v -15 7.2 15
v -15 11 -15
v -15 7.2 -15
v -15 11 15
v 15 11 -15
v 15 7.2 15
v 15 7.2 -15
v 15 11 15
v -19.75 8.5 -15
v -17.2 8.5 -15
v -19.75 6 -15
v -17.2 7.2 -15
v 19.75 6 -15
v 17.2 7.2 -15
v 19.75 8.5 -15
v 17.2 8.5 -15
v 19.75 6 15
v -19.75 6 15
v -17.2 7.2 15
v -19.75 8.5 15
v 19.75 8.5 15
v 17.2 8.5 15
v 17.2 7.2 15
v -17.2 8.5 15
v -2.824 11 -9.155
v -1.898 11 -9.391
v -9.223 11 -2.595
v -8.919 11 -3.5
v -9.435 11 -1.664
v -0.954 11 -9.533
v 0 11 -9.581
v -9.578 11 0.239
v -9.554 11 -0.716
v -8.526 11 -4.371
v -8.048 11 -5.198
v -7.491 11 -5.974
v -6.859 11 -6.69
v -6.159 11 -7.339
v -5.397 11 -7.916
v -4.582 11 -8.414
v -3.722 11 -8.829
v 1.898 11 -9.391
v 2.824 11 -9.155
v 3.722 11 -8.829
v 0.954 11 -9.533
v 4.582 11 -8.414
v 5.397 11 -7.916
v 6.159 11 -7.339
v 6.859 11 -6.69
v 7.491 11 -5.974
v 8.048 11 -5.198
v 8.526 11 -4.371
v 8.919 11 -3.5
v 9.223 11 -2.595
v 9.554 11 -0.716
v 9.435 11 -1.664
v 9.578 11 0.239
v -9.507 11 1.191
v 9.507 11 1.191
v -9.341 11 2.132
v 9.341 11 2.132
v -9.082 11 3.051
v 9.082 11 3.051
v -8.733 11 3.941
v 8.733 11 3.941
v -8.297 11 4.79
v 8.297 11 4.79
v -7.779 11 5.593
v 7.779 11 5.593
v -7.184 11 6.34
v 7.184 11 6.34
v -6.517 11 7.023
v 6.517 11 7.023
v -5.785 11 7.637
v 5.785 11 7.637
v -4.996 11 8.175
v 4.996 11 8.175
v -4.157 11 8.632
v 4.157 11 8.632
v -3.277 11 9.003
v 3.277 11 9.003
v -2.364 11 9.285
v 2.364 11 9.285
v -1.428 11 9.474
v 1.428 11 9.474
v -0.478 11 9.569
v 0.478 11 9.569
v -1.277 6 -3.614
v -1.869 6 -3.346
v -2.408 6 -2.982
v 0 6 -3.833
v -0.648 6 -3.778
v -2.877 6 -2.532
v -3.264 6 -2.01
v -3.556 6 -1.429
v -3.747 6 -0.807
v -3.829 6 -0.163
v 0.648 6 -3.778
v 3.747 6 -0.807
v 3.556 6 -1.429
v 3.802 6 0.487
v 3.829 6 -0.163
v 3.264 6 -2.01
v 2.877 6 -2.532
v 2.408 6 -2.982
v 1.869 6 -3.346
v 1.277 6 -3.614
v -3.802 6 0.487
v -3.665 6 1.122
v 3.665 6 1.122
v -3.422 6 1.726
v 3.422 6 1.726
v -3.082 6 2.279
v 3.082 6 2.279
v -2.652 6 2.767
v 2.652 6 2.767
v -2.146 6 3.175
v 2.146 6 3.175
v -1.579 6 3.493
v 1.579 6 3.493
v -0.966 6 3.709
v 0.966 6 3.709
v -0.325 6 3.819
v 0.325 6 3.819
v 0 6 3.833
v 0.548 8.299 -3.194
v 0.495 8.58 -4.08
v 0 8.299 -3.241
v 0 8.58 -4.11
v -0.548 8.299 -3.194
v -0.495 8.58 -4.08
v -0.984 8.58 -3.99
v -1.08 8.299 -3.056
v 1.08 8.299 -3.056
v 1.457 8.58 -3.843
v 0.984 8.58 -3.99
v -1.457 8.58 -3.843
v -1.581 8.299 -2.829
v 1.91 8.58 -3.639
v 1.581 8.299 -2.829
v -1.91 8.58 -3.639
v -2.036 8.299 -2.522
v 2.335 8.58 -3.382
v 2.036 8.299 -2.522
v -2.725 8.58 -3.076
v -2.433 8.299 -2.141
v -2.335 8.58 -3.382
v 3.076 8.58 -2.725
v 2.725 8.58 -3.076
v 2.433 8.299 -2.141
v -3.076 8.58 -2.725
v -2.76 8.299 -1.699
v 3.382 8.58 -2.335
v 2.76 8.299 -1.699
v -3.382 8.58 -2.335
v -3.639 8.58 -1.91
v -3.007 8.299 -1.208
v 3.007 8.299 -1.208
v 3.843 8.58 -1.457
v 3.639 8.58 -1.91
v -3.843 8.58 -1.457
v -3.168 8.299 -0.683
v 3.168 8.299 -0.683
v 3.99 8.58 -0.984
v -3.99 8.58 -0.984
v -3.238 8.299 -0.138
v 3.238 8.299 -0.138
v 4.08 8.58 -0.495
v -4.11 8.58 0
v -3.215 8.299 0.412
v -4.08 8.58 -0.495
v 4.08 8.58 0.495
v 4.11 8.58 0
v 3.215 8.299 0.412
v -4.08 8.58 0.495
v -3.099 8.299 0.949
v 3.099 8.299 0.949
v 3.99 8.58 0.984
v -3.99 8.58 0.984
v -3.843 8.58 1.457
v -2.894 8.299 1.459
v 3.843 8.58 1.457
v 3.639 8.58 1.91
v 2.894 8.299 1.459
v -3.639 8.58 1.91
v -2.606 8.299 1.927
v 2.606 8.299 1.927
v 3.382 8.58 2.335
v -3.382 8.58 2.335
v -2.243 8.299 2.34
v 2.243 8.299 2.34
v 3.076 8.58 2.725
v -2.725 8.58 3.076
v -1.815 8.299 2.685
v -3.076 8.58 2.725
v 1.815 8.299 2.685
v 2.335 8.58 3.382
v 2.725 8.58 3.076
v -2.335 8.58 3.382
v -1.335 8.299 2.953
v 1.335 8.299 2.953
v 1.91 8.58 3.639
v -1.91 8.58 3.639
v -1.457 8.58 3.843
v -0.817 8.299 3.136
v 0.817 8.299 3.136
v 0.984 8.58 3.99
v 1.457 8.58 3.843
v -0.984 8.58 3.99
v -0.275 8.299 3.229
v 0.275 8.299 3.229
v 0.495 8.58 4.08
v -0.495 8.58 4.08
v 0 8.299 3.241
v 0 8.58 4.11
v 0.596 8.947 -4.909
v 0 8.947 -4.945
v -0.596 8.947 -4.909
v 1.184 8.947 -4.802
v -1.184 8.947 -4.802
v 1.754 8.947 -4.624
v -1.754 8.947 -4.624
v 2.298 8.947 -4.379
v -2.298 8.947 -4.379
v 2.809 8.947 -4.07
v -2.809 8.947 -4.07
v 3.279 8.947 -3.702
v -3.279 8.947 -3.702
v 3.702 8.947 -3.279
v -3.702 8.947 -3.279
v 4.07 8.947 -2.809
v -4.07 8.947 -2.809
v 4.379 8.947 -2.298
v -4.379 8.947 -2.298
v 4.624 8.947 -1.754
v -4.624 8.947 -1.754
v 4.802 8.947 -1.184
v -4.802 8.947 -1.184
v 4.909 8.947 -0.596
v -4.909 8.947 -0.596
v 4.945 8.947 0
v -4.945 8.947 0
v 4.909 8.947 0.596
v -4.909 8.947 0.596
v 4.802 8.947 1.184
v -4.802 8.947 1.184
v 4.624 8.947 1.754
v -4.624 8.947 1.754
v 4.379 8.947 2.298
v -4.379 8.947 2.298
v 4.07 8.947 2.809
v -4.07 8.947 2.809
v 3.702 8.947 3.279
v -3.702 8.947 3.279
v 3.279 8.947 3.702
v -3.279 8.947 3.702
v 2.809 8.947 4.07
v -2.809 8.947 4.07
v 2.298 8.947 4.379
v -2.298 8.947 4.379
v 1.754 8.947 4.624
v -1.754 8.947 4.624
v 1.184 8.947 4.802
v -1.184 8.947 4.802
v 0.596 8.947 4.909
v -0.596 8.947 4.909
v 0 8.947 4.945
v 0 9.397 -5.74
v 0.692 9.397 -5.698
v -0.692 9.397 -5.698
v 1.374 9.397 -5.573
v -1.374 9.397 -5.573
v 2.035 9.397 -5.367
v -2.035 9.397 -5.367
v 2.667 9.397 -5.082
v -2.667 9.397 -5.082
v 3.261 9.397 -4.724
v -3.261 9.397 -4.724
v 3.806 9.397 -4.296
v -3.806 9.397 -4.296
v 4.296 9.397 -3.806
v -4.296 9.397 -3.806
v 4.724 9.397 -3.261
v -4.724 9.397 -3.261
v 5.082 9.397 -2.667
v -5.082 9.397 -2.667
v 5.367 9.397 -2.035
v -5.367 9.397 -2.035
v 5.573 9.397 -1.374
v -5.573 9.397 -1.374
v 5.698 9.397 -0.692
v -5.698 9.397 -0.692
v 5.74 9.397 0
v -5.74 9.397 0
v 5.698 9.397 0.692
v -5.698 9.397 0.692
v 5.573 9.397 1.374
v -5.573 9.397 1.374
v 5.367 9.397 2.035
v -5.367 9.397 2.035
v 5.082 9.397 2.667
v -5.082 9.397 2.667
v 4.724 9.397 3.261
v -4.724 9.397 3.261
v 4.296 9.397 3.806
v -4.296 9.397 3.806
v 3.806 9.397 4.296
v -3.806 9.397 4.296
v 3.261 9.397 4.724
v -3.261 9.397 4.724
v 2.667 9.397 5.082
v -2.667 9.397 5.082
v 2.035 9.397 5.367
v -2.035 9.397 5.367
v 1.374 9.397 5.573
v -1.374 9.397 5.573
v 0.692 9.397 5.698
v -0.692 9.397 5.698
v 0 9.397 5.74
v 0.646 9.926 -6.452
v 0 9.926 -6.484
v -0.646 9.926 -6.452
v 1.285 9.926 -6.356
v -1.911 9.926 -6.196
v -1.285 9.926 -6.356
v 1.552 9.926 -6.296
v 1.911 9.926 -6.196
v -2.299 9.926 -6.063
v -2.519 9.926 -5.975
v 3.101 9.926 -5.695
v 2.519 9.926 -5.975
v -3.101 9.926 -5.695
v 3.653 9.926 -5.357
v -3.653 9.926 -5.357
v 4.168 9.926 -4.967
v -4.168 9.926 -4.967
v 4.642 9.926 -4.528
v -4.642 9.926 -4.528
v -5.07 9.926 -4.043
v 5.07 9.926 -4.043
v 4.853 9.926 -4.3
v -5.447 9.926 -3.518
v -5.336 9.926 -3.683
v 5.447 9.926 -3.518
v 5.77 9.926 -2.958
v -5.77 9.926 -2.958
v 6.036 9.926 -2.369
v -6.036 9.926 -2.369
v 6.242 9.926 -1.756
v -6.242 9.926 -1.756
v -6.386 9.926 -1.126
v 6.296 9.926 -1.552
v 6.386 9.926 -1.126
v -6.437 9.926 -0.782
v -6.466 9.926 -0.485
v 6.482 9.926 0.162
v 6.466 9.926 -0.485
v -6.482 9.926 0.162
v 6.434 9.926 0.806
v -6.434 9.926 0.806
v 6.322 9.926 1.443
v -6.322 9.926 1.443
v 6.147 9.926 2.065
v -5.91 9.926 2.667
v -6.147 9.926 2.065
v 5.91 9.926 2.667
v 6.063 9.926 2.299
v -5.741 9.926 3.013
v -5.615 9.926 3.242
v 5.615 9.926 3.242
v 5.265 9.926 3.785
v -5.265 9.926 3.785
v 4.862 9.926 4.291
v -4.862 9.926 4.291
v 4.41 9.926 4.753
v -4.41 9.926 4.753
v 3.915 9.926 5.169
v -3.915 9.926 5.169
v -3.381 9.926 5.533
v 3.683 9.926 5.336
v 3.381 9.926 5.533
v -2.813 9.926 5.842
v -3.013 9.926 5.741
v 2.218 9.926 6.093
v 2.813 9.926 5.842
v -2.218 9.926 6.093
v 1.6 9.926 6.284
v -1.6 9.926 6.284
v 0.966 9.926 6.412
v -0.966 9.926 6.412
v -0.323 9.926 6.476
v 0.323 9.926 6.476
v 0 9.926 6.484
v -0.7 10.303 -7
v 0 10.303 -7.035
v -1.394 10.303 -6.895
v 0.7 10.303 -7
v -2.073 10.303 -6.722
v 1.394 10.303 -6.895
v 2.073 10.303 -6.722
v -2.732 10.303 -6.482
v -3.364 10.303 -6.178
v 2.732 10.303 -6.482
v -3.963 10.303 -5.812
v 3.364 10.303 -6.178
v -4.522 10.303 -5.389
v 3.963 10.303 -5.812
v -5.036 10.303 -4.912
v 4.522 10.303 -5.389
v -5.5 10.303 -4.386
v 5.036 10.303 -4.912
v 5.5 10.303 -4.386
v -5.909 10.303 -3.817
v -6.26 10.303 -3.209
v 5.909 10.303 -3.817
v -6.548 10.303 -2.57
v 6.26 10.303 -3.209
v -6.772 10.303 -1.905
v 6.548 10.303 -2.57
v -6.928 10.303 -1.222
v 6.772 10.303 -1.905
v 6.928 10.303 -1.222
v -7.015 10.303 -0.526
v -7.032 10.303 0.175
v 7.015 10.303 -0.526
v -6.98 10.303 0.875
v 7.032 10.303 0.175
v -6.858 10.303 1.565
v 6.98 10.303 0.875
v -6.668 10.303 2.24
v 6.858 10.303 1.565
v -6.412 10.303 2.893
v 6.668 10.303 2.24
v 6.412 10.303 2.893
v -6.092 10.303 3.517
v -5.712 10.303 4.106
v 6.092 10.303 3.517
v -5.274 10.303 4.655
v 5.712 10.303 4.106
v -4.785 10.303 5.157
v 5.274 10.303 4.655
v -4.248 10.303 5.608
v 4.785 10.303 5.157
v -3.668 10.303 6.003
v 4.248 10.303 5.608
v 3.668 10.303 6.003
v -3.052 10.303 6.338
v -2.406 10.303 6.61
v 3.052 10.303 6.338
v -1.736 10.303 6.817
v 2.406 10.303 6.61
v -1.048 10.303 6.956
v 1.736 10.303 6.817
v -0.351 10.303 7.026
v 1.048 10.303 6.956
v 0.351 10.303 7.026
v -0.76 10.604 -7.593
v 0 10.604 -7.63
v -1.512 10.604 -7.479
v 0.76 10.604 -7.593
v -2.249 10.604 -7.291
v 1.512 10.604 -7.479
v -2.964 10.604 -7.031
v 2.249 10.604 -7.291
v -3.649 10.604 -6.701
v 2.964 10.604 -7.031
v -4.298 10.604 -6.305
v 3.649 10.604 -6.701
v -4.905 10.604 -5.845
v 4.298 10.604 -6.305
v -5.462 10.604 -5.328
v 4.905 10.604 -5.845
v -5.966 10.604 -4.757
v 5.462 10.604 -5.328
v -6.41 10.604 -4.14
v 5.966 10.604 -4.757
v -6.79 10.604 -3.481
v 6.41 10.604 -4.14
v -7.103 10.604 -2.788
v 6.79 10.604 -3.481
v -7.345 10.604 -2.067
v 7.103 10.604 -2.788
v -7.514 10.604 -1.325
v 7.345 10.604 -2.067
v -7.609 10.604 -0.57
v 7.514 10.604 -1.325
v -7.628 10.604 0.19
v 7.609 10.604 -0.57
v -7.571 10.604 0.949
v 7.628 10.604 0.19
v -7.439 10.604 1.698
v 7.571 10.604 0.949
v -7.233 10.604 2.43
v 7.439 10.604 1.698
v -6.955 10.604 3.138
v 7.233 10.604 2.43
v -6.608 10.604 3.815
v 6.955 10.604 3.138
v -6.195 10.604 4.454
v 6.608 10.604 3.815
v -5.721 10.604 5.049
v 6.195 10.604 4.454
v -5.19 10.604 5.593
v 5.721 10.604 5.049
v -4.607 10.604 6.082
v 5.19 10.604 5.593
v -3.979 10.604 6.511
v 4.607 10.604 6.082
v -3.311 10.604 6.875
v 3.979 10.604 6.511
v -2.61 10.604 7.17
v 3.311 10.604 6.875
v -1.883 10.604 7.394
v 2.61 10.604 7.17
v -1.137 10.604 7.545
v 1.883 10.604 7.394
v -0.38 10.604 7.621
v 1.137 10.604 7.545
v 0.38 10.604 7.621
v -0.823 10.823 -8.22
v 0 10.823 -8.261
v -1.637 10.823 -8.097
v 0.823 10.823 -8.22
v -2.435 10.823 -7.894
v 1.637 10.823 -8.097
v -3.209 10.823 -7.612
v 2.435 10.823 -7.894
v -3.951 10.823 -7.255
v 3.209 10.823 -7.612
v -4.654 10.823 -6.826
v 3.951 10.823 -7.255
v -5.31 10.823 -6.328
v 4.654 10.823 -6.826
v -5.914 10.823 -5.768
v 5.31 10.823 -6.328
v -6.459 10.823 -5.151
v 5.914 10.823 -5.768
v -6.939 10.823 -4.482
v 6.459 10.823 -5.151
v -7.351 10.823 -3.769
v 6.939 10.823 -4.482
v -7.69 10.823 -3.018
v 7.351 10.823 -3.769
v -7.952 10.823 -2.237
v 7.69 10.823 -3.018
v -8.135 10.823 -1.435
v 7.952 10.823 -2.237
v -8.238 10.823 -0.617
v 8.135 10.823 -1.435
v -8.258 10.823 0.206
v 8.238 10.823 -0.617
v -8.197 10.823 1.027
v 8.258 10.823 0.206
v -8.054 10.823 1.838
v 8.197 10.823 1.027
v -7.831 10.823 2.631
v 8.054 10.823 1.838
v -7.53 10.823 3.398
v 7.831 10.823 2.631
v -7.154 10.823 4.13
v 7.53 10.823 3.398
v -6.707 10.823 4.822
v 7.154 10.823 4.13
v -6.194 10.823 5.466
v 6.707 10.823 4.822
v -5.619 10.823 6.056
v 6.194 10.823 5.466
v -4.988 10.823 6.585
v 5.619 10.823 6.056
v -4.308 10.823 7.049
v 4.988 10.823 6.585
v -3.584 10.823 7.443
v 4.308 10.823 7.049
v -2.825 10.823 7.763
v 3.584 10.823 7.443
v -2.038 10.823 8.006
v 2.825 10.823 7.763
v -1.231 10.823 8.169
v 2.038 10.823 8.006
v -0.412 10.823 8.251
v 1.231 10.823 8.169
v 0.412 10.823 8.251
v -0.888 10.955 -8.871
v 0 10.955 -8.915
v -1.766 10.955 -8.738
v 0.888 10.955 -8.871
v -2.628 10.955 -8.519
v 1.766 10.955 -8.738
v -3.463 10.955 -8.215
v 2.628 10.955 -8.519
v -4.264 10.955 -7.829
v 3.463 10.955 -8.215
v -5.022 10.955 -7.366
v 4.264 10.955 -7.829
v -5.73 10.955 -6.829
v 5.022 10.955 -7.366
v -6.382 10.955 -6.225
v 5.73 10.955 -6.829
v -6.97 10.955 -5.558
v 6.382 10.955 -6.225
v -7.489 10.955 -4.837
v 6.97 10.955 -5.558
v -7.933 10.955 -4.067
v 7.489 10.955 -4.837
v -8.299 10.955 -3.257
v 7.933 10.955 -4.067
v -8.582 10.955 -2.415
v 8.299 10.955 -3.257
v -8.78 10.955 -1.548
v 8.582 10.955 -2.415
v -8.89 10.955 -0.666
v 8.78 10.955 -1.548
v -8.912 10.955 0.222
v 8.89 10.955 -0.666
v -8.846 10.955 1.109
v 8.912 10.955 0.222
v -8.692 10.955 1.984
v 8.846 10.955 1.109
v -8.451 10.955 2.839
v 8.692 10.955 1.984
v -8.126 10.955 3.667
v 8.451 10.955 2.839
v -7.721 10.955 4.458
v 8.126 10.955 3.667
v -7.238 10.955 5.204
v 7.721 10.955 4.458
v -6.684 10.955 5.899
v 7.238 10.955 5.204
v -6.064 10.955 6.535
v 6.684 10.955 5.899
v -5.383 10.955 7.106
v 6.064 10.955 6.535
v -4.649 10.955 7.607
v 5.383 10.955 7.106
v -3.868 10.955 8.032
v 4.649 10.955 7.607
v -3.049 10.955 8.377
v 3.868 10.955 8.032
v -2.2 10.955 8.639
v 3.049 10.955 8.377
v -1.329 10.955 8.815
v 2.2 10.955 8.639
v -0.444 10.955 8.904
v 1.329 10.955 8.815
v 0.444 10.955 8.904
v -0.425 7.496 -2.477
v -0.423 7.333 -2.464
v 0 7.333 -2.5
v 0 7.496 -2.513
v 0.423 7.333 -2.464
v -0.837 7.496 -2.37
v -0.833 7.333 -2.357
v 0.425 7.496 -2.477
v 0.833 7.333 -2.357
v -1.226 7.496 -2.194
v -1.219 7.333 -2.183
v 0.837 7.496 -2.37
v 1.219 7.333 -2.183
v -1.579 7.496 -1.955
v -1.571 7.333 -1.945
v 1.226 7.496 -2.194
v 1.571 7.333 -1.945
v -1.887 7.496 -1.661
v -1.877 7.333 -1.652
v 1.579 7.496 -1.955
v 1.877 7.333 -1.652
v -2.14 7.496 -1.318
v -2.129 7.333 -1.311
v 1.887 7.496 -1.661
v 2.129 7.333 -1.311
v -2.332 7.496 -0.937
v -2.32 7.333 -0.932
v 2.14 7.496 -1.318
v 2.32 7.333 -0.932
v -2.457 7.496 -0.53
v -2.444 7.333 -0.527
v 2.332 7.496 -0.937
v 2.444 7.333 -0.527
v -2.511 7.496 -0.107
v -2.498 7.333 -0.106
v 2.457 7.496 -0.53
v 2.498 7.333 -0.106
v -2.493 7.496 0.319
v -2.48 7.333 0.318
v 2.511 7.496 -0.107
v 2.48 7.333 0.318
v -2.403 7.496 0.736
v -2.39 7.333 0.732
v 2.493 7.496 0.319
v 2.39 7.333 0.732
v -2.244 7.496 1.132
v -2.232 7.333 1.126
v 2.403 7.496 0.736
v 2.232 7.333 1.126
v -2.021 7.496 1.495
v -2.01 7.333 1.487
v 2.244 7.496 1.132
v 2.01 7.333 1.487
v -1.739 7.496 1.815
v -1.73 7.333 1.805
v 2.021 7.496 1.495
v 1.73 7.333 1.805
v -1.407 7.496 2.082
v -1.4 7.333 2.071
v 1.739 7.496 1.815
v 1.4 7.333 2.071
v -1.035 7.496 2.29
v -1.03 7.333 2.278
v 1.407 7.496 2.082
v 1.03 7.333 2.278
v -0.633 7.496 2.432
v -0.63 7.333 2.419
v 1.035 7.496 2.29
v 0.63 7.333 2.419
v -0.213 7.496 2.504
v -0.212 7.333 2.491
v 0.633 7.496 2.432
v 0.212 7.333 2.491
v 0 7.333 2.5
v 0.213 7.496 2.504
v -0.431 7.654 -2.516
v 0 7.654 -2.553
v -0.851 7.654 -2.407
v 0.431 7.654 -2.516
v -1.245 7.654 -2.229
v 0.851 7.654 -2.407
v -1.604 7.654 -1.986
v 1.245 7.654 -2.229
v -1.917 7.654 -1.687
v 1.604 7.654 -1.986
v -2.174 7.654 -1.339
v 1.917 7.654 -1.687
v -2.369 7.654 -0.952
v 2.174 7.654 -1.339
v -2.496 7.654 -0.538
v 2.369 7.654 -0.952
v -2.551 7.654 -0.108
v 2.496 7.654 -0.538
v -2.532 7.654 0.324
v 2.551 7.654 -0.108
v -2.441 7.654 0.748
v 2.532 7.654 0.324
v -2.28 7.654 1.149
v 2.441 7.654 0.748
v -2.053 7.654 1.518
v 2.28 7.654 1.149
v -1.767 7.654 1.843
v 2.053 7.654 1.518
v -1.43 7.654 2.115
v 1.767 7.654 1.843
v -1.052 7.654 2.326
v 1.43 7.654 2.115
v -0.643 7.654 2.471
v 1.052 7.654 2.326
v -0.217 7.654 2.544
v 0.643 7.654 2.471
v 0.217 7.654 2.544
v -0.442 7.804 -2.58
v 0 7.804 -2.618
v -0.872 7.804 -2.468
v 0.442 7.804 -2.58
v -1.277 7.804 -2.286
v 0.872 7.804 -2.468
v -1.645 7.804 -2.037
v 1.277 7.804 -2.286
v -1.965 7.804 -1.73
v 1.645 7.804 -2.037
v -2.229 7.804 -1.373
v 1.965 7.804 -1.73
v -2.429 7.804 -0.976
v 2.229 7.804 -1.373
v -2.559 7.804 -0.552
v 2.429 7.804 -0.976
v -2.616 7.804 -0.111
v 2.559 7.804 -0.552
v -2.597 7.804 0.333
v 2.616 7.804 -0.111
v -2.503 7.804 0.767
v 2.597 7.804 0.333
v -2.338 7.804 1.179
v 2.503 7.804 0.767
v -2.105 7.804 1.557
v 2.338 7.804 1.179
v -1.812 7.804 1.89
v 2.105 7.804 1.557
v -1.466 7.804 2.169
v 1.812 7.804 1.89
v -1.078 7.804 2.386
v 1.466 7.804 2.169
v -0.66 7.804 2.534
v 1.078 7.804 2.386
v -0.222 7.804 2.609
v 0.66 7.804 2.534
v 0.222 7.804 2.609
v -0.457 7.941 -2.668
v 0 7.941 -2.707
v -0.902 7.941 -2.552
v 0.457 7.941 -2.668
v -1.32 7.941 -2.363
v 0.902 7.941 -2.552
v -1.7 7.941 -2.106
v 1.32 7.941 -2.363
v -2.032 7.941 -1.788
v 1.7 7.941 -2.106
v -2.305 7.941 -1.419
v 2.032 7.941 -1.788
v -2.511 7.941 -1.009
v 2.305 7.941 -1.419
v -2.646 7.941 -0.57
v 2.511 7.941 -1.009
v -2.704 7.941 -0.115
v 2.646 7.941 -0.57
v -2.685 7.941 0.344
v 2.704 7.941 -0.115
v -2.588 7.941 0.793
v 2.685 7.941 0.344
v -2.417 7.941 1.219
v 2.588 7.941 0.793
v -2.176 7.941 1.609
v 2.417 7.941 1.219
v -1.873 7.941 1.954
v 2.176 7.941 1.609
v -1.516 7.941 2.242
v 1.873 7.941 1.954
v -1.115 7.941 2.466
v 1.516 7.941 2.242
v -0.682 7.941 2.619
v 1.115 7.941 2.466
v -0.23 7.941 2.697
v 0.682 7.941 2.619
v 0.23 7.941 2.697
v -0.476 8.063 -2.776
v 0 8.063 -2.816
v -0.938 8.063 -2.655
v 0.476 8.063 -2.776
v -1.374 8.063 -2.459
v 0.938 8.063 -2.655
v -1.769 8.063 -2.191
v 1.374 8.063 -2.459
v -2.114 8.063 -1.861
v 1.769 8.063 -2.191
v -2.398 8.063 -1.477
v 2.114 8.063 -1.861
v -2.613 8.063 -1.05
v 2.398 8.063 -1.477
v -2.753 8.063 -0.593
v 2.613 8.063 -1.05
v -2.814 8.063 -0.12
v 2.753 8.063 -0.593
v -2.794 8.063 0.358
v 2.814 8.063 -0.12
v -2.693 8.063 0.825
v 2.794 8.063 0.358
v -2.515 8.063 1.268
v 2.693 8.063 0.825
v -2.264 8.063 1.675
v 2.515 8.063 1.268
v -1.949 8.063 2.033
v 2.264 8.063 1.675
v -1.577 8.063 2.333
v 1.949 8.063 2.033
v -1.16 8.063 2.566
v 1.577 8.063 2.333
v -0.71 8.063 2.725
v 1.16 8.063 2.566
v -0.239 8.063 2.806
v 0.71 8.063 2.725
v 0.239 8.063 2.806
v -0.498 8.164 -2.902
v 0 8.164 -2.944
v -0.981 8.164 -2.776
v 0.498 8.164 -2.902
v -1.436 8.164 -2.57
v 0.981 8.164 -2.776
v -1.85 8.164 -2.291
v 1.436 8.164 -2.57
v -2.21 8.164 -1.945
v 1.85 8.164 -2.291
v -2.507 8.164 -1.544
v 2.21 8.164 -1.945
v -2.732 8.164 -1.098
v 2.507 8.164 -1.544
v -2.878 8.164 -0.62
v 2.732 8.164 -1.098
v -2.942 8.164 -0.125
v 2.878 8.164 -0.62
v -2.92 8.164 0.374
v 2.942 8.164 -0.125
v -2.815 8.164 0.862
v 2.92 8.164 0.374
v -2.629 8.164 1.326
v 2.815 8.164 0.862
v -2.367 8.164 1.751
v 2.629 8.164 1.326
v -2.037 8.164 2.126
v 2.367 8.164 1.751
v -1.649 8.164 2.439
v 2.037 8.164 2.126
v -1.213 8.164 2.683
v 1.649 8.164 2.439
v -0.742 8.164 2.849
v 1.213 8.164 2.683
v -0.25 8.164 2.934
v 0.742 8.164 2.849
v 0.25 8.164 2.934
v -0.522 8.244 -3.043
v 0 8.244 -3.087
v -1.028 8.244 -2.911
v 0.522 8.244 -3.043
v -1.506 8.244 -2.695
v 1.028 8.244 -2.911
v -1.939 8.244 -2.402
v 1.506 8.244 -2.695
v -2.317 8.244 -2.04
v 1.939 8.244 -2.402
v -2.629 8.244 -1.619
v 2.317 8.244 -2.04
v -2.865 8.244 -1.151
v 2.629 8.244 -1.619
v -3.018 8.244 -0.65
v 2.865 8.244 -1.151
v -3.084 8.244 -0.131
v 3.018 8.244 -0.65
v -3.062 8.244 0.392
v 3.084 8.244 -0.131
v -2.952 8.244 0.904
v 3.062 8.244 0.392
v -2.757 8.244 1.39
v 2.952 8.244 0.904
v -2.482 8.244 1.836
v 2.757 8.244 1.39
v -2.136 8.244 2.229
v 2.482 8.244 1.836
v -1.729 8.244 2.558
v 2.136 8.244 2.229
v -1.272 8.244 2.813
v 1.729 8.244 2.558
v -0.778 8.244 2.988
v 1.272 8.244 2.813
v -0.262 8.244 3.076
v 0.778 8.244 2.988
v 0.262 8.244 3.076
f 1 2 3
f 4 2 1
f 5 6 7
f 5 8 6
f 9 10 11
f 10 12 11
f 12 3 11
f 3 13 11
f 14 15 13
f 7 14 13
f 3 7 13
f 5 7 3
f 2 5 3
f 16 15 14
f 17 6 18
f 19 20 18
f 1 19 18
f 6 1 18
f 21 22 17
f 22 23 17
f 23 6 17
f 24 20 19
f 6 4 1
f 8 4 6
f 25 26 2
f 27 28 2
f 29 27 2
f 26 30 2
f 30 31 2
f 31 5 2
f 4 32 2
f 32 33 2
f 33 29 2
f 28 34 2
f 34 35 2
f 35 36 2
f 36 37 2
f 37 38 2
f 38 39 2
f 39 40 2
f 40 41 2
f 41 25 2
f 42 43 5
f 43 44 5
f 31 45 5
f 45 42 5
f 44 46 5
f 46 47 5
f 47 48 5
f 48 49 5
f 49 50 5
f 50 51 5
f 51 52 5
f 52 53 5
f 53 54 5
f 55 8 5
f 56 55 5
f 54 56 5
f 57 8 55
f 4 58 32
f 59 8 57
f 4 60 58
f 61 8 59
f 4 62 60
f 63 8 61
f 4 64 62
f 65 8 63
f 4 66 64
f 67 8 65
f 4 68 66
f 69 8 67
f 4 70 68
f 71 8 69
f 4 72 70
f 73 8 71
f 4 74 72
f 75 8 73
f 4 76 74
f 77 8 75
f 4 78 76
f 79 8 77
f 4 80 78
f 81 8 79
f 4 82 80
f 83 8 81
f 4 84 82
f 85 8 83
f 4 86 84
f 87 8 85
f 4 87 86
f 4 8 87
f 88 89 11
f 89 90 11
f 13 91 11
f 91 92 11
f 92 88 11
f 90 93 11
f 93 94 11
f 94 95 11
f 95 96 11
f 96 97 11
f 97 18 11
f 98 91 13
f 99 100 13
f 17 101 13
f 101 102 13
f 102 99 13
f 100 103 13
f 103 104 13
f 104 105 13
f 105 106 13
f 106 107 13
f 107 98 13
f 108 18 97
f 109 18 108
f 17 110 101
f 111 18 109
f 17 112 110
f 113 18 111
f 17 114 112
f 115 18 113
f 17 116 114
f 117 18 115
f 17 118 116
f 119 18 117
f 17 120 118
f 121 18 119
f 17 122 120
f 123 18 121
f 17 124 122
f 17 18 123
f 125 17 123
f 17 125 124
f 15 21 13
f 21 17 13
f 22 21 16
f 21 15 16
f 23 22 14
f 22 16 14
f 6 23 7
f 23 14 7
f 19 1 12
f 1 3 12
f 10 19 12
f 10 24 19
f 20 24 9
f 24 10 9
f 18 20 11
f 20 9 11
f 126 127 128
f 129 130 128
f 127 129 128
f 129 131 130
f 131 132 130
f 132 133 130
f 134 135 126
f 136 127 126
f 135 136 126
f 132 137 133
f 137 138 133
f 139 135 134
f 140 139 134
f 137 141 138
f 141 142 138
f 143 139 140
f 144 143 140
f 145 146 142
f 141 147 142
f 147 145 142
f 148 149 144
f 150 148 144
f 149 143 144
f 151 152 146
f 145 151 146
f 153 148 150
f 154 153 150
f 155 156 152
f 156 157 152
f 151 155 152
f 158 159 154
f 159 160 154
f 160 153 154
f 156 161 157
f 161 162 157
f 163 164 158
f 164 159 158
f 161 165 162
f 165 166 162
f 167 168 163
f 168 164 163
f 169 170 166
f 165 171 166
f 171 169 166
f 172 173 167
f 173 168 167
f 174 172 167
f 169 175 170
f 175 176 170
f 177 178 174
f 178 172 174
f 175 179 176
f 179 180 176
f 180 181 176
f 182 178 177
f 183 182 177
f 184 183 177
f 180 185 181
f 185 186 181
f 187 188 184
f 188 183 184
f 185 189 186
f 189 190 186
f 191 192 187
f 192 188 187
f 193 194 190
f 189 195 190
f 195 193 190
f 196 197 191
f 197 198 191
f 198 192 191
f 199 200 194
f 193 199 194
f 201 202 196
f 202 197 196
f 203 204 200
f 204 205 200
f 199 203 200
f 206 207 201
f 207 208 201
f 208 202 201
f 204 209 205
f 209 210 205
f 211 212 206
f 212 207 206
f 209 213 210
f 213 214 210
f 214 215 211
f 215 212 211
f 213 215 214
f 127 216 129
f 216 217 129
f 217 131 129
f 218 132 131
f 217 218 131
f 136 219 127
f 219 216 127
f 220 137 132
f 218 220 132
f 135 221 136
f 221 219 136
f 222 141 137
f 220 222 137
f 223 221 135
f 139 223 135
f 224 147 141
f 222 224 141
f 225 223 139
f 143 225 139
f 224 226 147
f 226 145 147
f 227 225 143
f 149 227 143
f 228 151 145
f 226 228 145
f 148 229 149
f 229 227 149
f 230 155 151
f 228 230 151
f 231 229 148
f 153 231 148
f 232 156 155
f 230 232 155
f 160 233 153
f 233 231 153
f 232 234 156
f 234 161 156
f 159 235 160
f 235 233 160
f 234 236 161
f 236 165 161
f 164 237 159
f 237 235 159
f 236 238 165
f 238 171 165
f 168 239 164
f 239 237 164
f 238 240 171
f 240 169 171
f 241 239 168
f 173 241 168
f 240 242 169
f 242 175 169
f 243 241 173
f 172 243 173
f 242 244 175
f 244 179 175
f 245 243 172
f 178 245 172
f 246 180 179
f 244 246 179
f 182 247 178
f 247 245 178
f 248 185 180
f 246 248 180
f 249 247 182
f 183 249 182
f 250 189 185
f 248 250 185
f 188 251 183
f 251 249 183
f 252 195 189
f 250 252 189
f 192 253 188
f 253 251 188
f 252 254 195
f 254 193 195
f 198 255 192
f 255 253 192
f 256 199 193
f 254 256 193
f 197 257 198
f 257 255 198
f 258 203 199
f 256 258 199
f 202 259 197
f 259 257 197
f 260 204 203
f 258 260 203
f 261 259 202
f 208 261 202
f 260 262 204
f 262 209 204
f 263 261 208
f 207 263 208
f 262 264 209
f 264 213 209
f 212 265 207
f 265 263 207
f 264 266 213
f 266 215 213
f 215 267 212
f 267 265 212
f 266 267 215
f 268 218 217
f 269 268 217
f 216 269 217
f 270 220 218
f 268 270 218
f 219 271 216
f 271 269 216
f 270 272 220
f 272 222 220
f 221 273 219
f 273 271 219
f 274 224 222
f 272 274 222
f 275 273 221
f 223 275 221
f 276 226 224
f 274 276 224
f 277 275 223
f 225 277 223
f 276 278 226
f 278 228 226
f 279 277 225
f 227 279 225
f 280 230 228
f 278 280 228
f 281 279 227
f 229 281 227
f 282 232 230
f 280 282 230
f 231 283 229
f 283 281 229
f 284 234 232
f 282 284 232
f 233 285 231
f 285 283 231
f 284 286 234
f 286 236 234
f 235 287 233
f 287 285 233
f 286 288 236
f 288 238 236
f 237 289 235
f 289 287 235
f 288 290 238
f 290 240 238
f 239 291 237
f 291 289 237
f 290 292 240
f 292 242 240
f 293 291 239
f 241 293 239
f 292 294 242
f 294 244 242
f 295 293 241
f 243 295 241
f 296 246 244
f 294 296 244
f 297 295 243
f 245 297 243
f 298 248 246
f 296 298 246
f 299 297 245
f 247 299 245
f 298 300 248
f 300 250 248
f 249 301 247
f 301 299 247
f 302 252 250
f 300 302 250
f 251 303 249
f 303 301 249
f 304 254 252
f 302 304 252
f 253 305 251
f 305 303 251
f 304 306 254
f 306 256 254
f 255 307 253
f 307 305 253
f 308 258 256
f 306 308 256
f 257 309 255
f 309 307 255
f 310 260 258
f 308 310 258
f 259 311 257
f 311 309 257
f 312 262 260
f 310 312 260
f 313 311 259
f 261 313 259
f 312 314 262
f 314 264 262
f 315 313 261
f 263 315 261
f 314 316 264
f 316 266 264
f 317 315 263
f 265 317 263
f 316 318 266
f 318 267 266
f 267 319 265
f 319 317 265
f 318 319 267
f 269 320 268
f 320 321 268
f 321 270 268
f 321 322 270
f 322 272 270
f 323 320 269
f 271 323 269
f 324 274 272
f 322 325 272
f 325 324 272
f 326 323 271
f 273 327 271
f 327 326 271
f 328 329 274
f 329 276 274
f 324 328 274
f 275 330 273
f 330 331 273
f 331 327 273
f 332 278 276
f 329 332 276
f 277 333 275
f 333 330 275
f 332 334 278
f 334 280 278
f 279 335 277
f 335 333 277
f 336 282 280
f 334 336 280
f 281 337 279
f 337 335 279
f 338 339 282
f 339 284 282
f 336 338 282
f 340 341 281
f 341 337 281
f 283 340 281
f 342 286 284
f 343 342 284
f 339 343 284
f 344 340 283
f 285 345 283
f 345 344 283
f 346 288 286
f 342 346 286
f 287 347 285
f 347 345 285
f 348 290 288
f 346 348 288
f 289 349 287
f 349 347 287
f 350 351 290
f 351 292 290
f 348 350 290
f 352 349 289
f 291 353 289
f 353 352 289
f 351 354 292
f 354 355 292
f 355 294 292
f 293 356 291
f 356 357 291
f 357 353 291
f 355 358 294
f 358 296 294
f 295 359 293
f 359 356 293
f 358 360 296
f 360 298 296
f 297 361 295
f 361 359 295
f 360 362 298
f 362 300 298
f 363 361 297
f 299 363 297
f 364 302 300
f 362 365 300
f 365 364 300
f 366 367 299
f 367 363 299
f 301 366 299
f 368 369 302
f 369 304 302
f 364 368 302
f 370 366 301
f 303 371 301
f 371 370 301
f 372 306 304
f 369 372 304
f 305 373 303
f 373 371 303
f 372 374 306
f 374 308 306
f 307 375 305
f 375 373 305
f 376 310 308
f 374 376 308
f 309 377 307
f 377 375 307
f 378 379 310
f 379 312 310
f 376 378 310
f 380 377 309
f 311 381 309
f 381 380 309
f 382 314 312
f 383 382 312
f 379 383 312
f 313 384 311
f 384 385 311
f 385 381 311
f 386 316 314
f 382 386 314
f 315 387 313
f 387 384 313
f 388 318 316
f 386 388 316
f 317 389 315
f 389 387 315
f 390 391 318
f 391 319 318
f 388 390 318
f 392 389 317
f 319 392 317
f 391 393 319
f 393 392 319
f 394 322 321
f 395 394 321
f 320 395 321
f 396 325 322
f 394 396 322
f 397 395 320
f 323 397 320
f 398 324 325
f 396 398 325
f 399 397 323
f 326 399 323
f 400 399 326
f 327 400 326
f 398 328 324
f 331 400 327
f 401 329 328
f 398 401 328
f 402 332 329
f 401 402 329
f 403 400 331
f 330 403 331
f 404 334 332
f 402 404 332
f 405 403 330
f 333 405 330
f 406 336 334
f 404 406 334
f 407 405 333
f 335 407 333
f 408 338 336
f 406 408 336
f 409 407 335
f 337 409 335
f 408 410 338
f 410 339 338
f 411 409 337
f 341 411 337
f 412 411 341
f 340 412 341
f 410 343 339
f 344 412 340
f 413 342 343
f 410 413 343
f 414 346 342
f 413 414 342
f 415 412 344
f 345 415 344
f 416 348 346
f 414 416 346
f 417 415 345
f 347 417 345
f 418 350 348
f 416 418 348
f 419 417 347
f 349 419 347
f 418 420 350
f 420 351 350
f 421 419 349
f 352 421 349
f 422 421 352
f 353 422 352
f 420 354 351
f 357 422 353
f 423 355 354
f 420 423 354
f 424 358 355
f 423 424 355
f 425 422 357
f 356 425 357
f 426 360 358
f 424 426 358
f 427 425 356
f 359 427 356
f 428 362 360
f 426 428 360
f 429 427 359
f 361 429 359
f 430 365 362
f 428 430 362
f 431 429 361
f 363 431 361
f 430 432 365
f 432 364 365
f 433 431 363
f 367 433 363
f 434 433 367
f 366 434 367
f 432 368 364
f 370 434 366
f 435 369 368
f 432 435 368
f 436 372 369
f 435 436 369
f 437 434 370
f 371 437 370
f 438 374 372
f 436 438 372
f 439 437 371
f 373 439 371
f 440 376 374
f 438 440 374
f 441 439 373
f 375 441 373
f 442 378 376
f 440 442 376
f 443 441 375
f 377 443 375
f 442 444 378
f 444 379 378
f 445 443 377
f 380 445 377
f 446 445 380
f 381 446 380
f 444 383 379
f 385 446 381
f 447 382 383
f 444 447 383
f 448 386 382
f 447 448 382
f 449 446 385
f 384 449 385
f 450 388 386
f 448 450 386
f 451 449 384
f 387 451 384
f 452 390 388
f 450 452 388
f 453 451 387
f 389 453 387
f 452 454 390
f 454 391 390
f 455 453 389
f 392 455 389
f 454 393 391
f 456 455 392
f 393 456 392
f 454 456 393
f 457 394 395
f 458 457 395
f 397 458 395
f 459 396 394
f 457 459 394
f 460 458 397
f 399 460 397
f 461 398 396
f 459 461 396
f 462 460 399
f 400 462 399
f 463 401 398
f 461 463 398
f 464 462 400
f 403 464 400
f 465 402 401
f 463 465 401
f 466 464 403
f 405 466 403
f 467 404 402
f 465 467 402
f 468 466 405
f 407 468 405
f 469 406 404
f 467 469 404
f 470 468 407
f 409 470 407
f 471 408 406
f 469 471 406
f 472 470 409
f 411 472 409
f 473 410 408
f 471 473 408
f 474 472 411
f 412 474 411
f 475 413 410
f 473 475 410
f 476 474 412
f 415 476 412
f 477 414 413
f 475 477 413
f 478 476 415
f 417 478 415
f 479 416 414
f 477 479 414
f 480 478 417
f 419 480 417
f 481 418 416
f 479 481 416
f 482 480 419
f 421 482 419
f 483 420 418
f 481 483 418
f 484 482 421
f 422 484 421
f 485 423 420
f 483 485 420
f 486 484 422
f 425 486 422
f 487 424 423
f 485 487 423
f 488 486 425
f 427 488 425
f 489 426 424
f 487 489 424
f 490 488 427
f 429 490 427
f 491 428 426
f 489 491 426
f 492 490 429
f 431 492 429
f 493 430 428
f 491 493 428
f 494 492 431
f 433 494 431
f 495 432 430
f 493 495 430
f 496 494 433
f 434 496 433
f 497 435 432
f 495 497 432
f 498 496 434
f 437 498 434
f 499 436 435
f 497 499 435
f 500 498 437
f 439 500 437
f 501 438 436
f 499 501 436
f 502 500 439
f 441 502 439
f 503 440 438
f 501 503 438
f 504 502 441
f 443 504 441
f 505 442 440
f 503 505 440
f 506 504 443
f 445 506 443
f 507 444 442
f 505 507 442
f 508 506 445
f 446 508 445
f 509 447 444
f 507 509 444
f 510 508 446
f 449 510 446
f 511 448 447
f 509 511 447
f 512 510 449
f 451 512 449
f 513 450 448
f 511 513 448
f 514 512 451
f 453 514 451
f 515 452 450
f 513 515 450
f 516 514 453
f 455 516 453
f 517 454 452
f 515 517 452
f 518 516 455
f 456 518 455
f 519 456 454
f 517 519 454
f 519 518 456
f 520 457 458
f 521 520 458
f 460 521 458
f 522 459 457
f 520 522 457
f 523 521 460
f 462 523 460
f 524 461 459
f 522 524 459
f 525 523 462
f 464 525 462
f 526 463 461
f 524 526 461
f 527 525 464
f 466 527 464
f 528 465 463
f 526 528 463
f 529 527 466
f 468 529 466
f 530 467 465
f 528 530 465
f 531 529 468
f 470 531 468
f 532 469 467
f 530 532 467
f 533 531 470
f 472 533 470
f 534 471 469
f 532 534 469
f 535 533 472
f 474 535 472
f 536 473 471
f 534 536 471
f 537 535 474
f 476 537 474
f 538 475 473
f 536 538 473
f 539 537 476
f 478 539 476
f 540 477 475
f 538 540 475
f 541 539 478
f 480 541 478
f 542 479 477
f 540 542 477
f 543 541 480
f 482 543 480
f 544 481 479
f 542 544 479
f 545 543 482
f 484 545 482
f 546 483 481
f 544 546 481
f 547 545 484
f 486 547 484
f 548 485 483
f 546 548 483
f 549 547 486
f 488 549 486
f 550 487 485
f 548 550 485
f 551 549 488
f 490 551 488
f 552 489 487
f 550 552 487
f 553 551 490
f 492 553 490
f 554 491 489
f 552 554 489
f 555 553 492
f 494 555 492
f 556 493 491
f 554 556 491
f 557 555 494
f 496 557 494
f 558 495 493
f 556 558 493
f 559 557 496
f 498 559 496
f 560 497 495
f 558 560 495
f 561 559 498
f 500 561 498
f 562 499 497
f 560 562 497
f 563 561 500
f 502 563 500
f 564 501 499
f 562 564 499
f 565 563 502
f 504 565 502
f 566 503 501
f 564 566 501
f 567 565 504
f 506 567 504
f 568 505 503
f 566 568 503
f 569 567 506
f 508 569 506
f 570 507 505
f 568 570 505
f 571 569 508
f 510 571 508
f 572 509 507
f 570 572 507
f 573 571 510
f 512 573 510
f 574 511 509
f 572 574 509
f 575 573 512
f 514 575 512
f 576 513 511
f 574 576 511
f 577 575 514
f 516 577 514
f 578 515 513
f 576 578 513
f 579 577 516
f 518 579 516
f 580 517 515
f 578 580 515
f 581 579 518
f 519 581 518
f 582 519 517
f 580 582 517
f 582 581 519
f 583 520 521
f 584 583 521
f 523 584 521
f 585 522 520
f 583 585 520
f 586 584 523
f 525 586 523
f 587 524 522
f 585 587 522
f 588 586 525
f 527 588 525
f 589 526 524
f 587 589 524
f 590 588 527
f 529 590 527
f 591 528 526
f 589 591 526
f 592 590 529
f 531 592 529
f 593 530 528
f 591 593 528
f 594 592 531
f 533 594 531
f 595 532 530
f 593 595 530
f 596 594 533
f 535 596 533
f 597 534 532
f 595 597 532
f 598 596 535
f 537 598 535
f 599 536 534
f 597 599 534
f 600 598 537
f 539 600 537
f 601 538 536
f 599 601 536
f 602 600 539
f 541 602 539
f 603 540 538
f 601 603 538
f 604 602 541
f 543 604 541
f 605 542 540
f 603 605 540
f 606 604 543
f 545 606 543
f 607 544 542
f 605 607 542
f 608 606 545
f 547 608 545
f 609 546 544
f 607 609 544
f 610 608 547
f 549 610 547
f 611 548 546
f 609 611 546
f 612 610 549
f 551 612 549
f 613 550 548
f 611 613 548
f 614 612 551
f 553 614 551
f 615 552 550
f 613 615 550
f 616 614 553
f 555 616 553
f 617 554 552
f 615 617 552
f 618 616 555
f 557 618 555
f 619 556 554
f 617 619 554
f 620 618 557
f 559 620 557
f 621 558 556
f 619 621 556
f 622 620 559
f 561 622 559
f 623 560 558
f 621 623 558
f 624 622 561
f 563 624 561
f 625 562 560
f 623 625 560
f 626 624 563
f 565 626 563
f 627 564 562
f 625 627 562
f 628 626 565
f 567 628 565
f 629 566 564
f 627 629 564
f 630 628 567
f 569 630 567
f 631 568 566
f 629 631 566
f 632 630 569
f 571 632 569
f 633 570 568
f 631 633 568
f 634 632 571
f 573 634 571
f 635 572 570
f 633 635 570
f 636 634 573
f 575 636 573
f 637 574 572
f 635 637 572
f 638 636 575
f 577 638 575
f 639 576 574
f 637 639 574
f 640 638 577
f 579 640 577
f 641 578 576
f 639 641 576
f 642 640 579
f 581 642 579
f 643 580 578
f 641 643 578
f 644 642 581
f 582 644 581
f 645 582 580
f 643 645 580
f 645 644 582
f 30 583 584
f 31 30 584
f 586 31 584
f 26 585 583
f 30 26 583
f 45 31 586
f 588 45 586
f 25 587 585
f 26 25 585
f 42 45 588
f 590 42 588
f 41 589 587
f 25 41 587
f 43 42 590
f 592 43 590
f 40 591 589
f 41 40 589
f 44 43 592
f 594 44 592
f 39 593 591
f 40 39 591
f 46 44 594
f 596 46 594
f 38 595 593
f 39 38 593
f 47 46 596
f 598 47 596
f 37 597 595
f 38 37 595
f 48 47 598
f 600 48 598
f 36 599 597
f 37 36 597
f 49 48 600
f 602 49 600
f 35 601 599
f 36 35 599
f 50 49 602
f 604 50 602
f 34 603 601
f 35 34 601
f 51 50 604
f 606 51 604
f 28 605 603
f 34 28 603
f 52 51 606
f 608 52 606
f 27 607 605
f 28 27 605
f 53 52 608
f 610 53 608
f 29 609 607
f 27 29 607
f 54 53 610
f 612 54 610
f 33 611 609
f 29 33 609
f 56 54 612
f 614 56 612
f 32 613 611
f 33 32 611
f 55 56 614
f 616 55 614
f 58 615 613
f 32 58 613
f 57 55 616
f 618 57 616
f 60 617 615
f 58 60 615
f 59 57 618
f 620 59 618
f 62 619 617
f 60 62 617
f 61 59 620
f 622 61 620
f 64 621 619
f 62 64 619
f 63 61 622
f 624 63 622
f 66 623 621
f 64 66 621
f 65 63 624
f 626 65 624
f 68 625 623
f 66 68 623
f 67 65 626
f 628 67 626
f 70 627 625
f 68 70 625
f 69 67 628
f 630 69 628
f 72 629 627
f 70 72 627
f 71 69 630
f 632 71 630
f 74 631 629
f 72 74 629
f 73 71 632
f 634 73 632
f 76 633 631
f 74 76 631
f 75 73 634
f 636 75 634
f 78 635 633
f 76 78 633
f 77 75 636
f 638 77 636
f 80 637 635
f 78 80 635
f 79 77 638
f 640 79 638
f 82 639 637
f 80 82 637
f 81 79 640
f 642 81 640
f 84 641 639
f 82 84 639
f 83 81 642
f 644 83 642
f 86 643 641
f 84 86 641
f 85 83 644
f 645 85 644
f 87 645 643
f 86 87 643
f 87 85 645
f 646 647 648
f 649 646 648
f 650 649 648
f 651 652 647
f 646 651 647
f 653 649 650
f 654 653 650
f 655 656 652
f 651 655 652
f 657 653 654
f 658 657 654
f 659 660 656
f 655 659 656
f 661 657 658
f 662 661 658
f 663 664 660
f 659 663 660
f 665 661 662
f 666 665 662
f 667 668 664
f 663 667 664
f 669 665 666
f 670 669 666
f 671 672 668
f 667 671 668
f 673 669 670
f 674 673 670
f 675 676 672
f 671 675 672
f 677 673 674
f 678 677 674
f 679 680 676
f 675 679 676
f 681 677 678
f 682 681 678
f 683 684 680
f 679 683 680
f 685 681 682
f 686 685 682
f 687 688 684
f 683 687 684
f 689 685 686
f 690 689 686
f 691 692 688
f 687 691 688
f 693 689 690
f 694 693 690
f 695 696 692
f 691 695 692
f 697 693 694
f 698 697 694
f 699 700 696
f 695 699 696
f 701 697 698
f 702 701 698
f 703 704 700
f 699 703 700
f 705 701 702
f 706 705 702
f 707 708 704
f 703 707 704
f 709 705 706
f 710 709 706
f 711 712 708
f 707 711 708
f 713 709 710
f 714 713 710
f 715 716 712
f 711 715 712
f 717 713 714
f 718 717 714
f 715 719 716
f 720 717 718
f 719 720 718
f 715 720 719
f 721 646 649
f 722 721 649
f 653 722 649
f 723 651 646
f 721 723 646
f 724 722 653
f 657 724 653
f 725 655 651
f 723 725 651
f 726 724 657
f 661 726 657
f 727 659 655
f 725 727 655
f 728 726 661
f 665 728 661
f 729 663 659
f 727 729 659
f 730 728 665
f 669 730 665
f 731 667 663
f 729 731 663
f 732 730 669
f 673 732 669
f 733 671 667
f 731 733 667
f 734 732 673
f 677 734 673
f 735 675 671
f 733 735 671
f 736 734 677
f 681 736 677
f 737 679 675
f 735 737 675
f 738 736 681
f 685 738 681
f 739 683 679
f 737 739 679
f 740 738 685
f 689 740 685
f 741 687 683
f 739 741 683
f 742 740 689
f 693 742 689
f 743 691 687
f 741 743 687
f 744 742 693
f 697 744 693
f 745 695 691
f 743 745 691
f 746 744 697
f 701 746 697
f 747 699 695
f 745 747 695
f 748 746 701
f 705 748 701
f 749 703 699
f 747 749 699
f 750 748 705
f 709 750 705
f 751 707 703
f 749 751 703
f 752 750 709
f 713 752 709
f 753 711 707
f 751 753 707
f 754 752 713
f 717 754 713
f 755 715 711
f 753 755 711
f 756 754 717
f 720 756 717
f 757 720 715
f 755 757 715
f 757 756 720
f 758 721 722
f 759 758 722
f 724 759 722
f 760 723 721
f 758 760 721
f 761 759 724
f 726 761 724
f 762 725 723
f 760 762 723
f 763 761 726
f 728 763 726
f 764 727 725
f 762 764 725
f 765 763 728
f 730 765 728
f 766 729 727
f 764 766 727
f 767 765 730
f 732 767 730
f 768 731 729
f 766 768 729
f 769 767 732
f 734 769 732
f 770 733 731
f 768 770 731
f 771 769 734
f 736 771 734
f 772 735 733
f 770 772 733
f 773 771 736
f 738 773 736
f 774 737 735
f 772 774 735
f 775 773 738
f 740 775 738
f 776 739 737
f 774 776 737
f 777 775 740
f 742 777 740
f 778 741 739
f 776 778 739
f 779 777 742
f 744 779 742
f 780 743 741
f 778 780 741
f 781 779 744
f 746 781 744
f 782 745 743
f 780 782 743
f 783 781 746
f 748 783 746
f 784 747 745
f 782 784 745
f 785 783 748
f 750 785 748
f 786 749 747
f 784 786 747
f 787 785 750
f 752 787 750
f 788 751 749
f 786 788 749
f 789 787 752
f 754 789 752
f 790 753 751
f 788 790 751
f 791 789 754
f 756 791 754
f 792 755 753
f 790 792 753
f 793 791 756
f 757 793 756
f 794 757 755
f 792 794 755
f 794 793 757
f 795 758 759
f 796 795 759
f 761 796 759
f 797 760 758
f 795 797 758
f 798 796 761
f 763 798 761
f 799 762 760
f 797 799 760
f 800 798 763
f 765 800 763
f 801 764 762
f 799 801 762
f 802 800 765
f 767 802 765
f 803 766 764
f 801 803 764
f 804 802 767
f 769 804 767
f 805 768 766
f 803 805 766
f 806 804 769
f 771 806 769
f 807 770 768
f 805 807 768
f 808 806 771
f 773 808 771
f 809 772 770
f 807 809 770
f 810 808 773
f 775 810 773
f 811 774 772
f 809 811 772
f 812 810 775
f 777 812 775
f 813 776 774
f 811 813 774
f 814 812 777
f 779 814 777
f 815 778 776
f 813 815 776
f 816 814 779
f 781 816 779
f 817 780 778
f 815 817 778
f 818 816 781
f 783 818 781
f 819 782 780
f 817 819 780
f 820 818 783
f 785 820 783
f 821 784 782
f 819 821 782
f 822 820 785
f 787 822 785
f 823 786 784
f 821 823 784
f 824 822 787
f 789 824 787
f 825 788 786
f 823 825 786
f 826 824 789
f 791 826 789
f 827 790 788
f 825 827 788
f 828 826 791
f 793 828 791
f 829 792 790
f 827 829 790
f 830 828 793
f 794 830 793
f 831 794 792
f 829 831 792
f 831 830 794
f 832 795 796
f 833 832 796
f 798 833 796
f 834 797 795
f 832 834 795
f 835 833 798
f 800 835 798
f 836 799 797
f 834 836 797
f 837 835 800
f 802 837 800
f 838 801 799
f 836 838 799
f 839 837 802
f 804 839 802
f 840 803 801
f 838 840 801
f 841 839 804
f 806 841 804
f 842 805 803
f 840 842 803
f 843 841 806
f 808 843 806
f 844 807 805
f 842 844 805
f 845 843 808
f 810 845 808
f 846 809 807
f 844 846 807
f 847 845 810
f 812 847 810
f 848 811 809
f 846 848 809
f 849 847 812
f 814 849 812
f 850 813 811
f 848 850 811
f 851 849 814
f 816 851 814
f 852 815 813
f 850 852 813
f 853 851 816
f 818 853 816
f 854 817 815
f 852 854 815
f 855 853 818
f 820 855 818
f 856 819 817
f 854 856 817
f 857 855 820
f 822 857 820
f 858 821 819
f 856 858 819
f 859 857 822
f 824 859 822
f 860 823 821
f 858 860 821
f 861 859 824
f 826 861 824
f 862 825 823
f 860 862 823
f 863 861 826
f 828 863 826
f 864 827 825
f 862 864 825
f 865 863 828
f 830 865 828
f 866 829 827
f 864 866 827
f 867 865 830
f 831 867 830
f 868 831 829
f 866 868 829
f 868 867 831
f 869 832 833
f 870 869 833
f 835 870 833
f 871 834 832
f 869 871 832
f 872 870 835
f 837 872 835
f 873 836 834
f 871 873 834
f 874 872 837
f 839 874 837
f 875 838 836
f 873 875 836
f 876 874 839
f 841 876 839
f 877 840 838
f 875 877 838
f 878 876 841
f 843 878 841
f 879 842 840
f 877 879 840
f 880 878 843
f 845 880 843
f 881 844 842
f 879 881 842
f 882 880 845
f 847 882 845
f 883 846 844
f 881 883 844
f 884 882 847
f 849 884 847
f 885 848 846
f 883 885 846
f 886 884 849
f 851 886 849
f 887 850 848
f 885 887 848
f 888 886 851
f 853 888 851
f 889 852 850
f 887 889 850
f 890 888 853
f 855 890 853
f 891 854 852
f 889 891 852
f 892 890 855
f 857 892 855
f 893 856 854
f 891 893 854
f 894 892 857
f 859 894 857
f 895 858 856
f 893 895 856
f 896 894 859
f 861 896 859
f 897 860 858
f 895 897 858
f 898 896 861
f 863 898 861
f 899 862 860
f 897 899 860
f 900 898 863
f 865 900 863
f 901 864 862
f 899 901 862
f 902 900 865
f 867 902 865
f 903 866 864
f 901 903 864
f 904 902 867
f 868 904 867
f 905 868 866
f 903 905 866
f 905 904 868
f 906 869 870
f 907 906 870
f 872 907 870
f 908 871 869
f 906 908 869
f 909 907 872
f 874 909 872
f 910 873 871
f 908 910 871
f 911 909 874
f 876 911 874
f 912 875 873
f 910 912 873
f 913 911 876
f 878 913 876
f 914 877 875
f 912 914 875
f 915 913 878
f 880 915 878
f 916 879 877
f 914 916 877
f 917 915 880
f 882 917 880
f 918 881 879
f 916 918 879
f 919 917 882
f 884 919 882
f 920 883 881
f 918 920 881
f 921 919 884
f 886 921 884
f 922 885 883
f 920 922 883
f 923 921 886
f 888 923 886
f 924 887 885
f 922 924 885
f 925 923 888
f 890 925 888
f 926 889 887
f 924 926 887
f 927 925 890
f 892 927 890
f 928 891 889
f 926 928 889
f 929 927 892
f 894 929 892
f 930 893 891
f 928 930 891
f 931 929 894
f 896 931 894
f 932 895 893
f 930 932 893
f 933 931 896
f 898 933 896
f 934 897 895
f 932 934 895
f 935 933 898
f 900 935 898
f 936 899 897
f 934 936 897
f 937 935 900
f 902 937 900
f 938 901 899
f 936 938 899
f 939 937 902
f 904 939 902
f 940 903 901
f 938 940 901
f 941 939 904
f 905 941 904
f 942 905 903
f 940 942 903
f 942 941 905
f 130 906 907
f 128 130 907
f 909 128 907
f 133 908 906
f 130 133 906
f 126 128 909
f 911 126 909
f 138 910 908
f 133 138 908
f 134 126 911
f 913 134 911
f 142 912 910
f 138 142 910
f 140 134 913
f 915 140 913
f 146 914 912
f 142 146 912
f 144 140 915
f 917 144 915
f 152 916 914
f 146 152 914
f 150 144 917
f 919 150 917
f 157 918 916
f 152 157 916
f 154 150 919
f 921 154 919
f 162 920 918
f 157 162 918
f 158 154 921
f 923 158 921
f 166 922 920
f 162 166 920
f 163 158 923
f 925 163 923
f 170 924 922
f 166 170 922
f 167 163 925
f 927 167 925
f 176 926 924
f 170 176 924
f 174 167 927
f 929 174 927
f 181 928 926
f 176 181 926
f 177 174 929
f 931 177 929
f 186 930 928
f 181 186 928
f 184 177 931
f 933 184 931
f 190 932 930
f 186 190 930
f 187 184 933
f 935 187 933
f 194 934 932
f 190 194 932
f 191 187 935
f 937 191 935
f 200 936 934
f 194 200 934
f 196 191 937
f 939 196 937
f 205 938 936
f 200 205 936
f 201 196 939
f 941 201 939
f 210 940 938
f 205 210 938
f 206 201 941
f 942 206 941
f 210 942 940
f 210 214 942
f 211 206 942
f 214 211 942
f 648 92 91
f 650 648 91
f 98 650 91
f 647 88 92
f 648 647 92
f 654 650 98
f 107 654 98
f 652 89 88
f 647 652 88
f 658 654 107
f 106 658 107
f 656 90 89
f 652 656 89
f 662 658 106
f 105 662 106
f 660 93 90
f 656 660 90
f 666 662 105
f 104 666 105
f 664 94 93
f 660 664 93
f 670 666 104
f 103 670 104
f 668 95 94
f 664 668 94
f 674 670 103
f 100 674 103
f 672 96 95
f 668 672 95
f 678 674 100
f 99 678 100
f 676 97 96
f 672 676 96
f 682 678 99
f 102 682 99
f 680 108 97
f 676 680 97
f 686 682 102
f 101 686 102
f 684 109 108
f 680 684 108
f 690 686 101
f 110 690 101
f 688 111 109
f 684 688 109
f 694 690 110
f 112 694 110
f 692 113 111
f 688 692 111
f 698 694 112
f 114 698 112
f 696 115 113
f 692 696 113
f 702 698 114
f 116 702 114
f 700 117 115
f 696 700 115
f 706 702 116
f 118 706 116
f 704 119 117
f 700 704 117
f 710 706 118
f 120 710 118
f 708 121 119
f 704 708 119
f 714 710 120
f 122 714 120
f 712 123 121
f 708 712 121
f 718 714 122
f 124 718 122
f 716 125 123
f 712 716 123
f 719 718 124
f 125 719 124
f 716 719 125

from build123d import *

# Parameters (mm, degrees)
SKETCH1_W               = 30
SKETCH1_H               = 30
MAIN_BODY_DEPTH         = 11
SKETCH2_W               = 17.84
SKETCH2_H               = 2.8
WIRE_HOLE_DEPTH         = 6
BOARD_CAVITY_DEPTH      = 3
BOARD_CAVITY_DEPTH_BACK = 17.2
SKETCH3_W               = 20.5
SKETCH3_H               = 3.6
SKETCH4_W               = 10
SKETCH4_H               = 10
LIGHT_BOX_DEPTH         = 2
SKETCH5_R               = 2.5
CUT_EXTRUDE4_DEPTH      = 5
SKETCH7_W               = 20.5
SKETCH7_H               = 3.6
CUT_EXTRUDE5_DEPTH      = 1
BOSS_EXTRUDE1_DEPTH     = 30
BOSS_EXTRUDE2_START     = 2
SKETCH11_W              = 10
SKETCH11_H              = 10
SKETCH11_R              = 2.5
BOSS_EXTRUDE2_DEPTH     = 2
SKETCH12_W              = 44.564275197
SKETCH12_H              = 6
CUT_EXTRUDE6_DEPTH      = 40
FILLET1_R               = 5
FILLET2_R               = 1


with BuildPart() as part:
    # Sketch1 → Main Body (new body)
    with BuildSketch(Plane(origin=(0, 0, 0), x_dir=(1, 0, 0), z_dir=(0, 1, 0))):
        Rectangle(SKETCH1_W, SKETCH1_H)
    extrude(amount=MAIN_BODY_DEPTH)

    # Sketch2 → Wire Hole (cut)
    with BuildSketch(Plane.XZ):
        with Locations((0, 8.6)):
            Rectangle(SKETCH2_W, SKETCH2_H)
    extrude(amount=-WIRE_HOLE_DEPTH, mode=Mode.SUBTRACT)

    # Sketch3 → Board Cavity (cut, two sides: drawn at the far end of the back side and taken through both)
    with BuildSketch(Plane.XY.offset(7.2).offset(-BOARD_CAVITY_DEPTH_BACK)):
        with Locations((0, 4.2)):
            Rectangle(SKETCH3_W, SKETCH3_H)
    extrude(amount=BOARD_CAVITY_DEPTH + BOARD_CAVITY_DEPTH_BACK, mode=Mode.SUBTRACT)

    # Sketch4 → Light Box (cut)
    with BuildSketch(Plane.XZ.offset(-6)):
        with Locations((0, 0.05)):
            Rectangle(SKETCH4_W, SKETCH4_H)
    extrude(amount=-LIGHT_BOX_DEPTH, mode=Mode.SUBTRACT)

    # Sketch5 → Cut-Extrude4 (cut)
    with BuildSketch(Plane.XZ.offset(-8)):
        Circle(SKETCH5_R)
    extrude(amount=-CUT_EXTRUDE4_DEPTH, mode=Mode.SUBTRACT)

    # Sketch7 → Cut-Extrude5 (cut)
    with BuildSketch(Plane.XY.offset(-10)):
        with Locations((0, 4.2)):
            Rectangle(SKETCH7_W, SKETCH7_H)
    extrude(amount=-CUT_EXTRUDE5_DEPTH, mode=Mode.SUBTRACT)

    # Sketch8 → Boss-Extrude1 (add)
    with BuildSketch(Plane(origin=(0, 0, -15), x_dir=(-1, 0, 0), z_dir=(0, 0, -1))):
        Polygon((-15, 5.5), (-15, 3.8), (-17.2, 3.8), (-17.2, 2.5), (-19.75, 2.5), (-19.75, 8.5), (-17.2, 8.5), (-17.2, 7.2), (-15, 7.2), align=None)
    boss_extrude1 = extrude(amount=-BOSS_EXTRUDE1_DEPTH)

    # Mirror1: Boss-Extrude1 across plane
    add(boss_extrude1.mirror(Plane(origin=(0, 0, 0), x_dir=(0, 0, 1), z_dir=(1, 0, 0))))

    # Sketch9 → Cut-Revolve6 (revolve, cut)
    with BuildSketch(Plane.XY):
        with BuildLine():
            Line((-0.715, 25.989433281), (-0.715, 8))
            Line((-0.715, 8), (-1.3, 8))
            ThreePointArc((-1.3, 8), (-9.90524506, 17.284063213), (-0.715, 25.989433281))
        make_face()
    revolve(axis=Axis((0, 0, 0), (0, -1, 0)), mode=Mode.SUBTRACT)

    # Sketch11 → Boss-Extrude2 (add)
    with BuildSketch(Plane.XZ.offset(-8).offset(BOSS_EXTRUDE2_START)):
        with Locations((0, 0.05)):
            Rectangle(SKETCH11_W, SKETCH11_H)
        Circle(SKETCH11_R, mode=Mode.SUBTRACT)
    extrude(amount=-BOSS_EXTRUDE2_DEPTH)

    # Sketch12 → Cut-Extrude6 (cut)
    with BuildSketch(Plane(origin=(0, 0, -15), x_dir=(-1, 0, 0), z_dir=(0, 0, -1))):
        with Locations((-0.667629591, 3)):
            Rectangle(SKETCH12_W, SKETCH12_H)
    extrude(amount=-CUT_EXTRUDE6_DEPTH, mode=Mode.SUBTRACT)

    # Fillet1
    fillet1_edges = [part.edges().sort_by_distance(p)[0] for p in [
        (7.625755817, 11, -5e-09),
    ]]
    fillet(fillet1_edges, radius=FILLET1_R)

    # Fillet2
    fillet2_edges = [part.edges().sort_by_distance(p)[0] for p in [
        (0, 8.133109373, 2.499999983),
    ]]
    fillet(fillet2_edges, radius=FILLET2_R)

    # Sketch13 → Cut-Revolve7 (revolve, cut)
    with BuildSketch(Plane.XY):
        Polygon((-2.5, 7.332772815), (-3.832772815, 6), (0, 6), (0, 7.332772815), align=None)
    revolve(axis=Axis((0, 0, 0), (0, -1, 0)), mode=Mode.SUBTRACT)


solid = part.part
